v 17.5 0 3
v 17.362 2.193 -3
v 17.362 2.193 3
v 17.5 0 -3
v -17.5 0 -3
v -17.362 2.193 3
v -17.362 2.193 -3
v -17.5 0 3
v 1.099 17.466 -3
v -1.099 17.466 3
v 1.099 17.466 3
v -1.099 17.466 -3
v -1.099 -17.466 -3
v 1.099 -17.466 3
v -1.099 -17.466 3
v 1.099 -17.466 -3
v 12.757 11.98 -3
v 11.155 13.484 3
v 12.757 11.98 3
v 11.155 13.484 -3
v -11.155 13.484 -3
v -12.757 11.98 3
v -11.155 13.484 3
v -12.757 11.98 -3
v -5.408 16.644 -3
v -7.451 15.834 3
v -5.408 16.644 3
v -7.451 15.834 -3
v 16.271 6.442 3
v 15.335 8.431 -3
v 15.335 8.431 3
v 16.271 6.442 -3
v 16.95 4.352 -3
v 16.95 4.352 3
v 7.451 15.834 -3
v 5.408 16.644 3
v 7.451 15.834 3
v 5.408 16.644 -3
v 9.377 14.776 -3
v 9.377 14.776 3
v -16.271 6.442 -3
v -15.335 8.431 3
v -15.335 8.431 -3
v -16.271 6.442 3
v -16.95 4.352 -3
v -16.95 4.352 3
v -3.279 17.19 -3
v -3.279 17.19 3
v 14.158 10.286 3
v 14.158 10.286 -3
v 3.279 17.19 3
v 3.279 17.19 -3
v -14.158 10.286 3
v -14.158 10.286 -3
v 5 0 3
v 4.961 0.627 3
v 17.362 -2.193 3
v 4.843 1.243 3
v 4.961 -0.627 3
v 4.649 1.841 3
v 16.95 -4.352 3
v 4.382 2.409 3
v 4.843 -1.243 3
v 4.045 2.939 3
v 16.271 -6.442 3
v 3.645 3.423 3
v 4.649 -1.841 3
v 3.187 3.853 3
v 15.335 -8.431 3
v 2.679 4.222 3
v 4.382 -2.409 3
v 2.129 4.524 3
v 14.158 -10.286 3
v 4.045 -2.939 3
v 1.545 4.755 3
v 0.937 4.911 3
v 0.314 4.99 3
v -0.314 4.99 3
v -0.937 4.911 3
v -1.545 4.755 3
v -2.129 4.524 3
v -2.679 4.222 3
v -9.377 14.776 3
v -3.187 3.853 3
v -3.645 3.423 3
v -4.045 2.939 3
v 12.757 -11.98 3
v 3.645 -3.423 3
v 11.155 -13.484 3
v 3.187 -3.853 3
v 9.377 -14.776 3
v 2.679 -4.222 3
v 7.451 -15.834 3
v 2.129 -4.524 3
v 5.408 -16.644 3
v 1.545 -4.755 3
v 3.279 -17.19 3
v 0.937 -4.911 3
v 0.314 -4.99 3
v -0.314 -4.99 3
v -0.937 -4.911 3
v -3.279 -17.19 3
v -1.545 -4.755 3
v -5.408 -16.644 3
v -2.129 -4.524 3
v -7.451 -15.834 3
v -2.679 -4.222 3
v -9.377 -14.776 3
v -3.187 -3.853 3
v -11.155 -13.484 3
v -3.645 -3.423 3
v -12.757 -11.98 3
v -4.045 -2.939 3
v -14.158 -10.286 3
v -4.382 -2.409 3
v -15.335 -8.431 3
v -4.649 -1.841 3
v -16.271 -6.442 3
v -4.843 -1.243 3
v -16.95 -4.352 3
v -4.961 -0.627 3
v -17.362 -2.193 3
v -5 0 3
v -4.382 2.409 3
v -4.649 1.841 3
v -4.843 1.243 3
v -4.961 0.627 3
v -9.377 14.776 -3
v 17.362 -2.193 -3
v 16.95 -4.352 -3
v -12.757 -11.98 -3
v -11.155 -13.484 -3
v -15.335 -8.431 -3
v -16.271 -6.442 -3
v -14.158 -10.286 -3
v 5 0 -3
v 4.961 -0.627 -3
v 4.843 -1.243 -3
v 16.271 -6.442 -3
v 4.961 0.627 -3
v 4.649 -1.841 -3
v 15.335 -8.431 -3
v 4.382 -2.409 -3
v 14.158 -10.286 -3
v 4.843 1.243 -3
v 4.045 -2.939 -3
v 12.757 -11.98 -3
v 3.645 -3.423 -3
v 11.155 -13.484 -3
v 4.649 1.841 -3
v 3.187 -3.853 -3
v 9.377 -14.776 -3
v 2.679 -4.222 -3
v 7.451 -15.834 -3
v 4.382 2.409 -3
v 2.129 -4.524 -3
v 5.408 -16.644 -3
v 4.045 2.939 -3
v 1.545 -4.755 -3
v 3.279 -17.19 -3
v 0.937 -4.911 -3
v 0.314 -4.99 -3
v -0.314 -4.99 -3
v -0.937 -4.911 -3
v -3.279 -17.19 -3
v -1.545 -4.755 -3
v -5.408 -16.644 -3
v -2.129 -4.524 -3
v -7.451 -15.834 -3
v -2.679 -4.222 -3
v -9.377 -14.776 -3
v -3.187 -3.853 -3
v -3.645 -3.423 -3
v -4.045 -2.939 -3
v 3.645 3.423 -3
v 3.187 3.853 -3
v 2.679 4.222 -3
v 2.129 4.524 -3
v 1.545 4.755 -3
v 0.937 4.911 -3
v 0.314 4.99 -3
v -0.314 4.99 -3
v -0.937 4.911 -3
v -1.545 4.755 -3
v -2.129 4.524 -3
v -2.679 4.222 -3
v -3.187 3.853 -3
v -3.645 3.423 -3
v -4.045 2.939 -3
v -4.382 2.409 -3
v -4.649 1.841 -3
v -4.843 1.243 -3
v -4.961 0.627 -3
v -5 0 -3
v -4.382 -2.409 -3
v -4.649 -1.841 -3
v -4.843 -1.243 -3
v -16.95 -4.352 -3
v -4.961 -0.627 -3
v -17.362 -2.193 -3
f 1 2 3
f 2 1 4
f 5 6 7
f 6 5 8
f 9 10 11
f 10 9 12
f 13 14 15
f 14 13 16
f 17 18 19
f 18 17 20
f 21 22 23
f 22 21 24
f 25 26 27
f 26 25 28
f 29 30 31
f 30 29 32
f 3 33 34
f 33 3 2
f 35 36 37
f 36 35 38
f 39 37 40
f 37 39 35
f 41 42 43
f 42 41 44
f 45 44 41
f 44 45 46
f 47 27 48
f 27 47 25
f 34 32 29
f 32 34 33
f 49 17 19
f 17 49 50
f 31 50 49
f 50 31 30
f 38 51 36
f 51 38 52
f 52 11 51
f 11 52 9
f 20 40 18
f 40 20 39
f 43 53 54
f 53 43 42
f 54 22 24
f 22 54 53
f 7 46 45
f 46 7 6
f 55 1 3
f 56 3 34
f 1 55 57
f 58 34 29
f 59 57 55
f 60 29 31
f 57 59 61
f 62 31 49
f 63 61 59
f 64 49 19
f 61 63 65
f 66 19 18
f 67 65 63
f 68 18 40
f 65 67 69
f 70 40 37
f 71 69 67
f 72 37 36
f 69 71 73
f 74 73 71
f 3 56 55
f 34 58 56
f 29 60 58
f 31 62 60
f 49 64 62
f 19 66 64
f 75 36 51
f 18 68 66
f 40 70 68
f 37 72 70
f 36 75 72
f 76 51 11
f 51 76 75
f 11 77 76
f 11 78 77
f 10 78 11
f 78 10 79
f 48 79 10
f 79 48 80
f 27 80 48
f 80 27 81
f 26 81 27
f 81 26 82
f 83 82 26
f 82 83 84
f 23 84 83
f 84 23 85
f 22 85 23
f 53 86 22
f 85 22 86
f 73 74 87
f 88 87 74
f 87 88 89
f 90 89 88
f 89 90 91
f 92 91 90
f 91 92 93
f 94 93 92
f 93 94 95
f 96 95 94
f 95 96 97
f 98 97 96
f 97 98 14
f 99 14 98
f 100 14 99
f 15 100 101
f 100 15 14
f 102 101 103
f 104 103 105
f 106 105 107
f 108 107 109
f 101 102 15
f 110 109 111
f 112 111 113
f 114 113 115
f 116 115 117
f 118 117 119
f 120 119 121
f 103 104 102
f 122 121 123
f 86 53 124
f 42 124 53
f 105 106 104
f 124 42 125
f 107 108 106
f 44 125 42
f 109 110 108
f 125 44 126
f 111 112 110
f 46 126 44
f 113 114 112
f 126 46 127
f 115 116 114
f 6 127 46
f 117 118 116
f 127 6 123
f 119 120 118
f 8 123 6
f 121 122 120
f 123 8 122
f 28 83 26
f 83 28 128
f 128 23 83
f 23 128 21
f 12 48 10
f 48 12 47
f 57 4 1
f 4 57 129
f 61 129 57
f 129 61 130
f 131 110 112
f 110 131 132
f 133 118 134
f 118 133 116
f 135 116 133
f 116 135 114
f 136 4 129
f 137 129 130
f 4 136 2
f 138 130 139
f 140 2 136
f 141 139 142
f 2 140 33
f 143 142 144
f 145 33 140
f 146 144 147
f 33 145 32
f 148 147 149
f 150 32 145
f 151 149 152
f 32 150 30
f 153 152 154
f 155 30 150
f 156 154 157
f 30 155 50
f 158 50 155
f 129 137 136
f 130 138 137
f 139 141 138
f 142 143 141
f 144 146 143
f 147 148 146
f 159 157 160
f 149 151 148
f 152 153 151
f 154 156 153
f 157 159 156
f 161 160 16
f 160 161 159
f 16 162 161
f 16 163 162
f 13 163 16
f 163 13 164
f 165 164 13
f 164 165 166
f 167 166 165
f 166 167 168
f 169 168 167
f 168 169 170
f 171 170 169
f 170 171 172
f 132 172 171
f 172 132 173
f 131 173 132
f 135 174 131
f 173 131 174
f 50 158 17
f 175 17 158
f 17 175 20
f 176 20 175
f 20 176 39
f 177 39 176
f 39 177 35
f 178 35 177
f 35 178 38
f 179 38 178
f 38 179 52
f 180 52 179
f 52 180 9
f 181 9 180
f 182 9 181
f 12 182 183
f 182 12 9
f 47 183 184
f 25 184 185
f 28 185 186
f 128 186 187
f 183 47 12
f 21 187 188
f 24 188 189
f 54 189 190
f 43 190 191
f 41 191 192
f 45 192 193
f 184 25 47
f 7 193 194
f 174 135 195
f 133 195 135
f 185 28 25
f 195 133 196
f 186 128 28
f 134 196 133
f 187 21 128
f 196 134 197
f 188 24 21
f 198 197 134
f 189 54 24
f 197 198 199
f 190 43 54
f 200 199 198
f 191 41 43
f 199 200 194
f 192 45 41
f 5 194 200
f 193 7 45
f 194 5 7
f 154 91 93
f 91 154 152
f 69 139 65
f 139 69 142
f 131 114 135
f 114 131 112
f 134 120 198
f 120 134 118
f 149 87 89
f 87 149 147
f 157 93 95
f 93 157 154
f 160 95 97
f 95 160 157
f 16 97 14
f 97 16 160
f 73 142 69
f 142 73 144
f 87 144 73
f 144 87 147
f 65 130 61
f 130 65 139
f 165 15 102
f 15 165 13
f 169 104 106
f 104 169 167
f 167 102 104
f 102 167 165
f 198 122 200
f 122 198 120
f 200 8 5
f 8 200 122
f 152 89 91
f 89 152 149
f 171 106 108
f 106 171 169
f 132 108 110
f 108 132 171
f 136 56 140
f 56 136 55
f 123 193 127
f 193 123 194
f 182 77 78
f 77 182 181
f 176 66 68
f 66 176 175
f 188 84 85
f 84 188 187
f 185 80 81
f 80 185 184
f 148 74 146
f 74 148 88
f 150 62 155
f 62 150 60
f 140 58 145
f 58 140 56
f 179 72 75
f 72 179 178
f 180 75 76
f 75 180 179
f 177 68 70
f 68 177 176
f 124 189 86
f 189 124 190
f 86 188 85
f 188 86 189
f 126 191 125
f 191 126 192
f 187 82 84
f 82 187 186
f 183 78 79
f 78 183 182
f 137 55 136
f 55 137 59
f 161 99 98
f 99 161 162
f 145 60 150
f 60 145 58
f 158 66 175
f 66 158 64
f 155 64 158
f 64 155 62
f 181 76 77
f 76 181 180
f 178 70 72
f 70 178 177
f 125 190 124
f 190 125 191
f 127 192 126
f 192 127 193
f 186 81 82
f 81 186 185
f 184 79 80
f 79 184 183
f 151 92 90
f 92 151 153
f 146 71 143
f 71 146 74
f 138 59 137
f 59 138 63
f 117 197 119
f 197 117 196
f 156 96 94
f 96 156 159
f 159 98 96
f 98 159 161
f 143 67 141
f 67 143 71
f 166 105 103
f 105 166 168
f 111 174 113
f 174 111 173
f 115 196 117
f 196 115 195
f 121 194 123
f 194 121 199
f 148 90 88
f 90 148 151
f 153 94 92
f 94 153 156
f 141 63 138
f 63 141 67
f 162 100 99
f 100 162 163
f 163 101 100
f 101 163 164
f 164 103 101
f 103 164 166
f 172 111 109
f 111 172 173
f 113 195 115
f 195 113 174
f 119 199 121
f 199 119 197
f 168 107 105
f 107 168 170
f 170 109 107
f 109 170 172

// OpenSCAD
$fn = 50;


difference() {
	union() {
		translate(v = [0, 0, -3.0000000000]) {
			cylinder(h = 6, r = 17.5000000000);
		}
	}
	union() {
		translate(v = [0, 0, -100.0000000000]) {
			cylinder(h = 200, r = 5);
		}
	}
}
